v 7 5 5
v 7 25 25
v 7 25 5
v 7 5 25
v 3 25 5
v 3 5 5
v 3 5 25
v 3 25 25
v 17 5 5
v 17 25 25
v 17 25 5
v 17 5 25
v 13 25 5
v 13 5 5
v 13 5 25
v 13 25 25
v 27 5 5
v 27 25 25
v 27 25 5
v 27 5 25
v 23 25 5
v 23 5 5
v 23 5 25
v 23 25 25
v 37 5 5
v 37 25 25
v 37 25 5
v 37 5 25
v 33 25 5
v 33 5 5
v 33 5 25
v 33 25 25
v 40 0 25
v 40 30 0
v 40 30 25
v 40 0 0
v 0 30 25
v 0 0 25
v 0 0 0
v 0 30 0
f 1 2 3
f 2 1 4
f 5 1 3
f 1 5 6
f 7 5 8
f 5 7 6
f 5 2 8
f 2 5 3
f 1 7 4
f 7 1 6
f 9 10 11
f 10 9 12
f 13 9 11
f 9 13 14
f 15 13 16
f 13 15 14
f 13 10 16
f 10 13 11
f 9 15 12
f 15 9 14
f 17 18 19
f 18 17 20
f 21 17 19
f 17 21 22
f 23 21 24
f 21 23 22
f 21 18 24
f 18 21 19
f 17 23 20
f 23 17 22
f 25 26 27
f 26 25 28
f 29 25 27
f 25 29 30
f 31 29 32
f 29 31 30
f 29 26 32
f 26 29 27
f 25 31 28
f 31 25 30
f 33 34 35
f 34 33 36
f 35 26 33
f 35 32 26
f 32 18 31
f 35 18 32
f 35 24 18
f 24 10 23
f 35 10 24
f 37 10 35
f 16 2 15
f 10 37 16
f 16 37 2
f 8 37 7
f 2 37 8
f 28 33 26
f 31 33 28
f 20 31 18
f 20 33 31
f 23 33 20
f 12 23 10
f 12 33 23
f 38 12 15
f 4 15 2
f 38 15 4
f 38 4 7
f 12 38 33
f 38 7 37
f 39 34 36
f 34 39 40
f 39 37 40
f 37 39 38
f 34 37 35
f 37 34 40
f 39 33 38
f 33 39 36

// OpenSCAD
// Dimension of Nintindo Switch Game Card: 20mm x 30mm x 3mm
// Author: Xiaoqi Zhao
// Date: 2022-12-03

difference() {
    cube([40,30,25]);
    
    for (i = [0:1:3]) {
        #translate([3+i*10, 5, 5]) cube([4,20,30]);
    }
}
